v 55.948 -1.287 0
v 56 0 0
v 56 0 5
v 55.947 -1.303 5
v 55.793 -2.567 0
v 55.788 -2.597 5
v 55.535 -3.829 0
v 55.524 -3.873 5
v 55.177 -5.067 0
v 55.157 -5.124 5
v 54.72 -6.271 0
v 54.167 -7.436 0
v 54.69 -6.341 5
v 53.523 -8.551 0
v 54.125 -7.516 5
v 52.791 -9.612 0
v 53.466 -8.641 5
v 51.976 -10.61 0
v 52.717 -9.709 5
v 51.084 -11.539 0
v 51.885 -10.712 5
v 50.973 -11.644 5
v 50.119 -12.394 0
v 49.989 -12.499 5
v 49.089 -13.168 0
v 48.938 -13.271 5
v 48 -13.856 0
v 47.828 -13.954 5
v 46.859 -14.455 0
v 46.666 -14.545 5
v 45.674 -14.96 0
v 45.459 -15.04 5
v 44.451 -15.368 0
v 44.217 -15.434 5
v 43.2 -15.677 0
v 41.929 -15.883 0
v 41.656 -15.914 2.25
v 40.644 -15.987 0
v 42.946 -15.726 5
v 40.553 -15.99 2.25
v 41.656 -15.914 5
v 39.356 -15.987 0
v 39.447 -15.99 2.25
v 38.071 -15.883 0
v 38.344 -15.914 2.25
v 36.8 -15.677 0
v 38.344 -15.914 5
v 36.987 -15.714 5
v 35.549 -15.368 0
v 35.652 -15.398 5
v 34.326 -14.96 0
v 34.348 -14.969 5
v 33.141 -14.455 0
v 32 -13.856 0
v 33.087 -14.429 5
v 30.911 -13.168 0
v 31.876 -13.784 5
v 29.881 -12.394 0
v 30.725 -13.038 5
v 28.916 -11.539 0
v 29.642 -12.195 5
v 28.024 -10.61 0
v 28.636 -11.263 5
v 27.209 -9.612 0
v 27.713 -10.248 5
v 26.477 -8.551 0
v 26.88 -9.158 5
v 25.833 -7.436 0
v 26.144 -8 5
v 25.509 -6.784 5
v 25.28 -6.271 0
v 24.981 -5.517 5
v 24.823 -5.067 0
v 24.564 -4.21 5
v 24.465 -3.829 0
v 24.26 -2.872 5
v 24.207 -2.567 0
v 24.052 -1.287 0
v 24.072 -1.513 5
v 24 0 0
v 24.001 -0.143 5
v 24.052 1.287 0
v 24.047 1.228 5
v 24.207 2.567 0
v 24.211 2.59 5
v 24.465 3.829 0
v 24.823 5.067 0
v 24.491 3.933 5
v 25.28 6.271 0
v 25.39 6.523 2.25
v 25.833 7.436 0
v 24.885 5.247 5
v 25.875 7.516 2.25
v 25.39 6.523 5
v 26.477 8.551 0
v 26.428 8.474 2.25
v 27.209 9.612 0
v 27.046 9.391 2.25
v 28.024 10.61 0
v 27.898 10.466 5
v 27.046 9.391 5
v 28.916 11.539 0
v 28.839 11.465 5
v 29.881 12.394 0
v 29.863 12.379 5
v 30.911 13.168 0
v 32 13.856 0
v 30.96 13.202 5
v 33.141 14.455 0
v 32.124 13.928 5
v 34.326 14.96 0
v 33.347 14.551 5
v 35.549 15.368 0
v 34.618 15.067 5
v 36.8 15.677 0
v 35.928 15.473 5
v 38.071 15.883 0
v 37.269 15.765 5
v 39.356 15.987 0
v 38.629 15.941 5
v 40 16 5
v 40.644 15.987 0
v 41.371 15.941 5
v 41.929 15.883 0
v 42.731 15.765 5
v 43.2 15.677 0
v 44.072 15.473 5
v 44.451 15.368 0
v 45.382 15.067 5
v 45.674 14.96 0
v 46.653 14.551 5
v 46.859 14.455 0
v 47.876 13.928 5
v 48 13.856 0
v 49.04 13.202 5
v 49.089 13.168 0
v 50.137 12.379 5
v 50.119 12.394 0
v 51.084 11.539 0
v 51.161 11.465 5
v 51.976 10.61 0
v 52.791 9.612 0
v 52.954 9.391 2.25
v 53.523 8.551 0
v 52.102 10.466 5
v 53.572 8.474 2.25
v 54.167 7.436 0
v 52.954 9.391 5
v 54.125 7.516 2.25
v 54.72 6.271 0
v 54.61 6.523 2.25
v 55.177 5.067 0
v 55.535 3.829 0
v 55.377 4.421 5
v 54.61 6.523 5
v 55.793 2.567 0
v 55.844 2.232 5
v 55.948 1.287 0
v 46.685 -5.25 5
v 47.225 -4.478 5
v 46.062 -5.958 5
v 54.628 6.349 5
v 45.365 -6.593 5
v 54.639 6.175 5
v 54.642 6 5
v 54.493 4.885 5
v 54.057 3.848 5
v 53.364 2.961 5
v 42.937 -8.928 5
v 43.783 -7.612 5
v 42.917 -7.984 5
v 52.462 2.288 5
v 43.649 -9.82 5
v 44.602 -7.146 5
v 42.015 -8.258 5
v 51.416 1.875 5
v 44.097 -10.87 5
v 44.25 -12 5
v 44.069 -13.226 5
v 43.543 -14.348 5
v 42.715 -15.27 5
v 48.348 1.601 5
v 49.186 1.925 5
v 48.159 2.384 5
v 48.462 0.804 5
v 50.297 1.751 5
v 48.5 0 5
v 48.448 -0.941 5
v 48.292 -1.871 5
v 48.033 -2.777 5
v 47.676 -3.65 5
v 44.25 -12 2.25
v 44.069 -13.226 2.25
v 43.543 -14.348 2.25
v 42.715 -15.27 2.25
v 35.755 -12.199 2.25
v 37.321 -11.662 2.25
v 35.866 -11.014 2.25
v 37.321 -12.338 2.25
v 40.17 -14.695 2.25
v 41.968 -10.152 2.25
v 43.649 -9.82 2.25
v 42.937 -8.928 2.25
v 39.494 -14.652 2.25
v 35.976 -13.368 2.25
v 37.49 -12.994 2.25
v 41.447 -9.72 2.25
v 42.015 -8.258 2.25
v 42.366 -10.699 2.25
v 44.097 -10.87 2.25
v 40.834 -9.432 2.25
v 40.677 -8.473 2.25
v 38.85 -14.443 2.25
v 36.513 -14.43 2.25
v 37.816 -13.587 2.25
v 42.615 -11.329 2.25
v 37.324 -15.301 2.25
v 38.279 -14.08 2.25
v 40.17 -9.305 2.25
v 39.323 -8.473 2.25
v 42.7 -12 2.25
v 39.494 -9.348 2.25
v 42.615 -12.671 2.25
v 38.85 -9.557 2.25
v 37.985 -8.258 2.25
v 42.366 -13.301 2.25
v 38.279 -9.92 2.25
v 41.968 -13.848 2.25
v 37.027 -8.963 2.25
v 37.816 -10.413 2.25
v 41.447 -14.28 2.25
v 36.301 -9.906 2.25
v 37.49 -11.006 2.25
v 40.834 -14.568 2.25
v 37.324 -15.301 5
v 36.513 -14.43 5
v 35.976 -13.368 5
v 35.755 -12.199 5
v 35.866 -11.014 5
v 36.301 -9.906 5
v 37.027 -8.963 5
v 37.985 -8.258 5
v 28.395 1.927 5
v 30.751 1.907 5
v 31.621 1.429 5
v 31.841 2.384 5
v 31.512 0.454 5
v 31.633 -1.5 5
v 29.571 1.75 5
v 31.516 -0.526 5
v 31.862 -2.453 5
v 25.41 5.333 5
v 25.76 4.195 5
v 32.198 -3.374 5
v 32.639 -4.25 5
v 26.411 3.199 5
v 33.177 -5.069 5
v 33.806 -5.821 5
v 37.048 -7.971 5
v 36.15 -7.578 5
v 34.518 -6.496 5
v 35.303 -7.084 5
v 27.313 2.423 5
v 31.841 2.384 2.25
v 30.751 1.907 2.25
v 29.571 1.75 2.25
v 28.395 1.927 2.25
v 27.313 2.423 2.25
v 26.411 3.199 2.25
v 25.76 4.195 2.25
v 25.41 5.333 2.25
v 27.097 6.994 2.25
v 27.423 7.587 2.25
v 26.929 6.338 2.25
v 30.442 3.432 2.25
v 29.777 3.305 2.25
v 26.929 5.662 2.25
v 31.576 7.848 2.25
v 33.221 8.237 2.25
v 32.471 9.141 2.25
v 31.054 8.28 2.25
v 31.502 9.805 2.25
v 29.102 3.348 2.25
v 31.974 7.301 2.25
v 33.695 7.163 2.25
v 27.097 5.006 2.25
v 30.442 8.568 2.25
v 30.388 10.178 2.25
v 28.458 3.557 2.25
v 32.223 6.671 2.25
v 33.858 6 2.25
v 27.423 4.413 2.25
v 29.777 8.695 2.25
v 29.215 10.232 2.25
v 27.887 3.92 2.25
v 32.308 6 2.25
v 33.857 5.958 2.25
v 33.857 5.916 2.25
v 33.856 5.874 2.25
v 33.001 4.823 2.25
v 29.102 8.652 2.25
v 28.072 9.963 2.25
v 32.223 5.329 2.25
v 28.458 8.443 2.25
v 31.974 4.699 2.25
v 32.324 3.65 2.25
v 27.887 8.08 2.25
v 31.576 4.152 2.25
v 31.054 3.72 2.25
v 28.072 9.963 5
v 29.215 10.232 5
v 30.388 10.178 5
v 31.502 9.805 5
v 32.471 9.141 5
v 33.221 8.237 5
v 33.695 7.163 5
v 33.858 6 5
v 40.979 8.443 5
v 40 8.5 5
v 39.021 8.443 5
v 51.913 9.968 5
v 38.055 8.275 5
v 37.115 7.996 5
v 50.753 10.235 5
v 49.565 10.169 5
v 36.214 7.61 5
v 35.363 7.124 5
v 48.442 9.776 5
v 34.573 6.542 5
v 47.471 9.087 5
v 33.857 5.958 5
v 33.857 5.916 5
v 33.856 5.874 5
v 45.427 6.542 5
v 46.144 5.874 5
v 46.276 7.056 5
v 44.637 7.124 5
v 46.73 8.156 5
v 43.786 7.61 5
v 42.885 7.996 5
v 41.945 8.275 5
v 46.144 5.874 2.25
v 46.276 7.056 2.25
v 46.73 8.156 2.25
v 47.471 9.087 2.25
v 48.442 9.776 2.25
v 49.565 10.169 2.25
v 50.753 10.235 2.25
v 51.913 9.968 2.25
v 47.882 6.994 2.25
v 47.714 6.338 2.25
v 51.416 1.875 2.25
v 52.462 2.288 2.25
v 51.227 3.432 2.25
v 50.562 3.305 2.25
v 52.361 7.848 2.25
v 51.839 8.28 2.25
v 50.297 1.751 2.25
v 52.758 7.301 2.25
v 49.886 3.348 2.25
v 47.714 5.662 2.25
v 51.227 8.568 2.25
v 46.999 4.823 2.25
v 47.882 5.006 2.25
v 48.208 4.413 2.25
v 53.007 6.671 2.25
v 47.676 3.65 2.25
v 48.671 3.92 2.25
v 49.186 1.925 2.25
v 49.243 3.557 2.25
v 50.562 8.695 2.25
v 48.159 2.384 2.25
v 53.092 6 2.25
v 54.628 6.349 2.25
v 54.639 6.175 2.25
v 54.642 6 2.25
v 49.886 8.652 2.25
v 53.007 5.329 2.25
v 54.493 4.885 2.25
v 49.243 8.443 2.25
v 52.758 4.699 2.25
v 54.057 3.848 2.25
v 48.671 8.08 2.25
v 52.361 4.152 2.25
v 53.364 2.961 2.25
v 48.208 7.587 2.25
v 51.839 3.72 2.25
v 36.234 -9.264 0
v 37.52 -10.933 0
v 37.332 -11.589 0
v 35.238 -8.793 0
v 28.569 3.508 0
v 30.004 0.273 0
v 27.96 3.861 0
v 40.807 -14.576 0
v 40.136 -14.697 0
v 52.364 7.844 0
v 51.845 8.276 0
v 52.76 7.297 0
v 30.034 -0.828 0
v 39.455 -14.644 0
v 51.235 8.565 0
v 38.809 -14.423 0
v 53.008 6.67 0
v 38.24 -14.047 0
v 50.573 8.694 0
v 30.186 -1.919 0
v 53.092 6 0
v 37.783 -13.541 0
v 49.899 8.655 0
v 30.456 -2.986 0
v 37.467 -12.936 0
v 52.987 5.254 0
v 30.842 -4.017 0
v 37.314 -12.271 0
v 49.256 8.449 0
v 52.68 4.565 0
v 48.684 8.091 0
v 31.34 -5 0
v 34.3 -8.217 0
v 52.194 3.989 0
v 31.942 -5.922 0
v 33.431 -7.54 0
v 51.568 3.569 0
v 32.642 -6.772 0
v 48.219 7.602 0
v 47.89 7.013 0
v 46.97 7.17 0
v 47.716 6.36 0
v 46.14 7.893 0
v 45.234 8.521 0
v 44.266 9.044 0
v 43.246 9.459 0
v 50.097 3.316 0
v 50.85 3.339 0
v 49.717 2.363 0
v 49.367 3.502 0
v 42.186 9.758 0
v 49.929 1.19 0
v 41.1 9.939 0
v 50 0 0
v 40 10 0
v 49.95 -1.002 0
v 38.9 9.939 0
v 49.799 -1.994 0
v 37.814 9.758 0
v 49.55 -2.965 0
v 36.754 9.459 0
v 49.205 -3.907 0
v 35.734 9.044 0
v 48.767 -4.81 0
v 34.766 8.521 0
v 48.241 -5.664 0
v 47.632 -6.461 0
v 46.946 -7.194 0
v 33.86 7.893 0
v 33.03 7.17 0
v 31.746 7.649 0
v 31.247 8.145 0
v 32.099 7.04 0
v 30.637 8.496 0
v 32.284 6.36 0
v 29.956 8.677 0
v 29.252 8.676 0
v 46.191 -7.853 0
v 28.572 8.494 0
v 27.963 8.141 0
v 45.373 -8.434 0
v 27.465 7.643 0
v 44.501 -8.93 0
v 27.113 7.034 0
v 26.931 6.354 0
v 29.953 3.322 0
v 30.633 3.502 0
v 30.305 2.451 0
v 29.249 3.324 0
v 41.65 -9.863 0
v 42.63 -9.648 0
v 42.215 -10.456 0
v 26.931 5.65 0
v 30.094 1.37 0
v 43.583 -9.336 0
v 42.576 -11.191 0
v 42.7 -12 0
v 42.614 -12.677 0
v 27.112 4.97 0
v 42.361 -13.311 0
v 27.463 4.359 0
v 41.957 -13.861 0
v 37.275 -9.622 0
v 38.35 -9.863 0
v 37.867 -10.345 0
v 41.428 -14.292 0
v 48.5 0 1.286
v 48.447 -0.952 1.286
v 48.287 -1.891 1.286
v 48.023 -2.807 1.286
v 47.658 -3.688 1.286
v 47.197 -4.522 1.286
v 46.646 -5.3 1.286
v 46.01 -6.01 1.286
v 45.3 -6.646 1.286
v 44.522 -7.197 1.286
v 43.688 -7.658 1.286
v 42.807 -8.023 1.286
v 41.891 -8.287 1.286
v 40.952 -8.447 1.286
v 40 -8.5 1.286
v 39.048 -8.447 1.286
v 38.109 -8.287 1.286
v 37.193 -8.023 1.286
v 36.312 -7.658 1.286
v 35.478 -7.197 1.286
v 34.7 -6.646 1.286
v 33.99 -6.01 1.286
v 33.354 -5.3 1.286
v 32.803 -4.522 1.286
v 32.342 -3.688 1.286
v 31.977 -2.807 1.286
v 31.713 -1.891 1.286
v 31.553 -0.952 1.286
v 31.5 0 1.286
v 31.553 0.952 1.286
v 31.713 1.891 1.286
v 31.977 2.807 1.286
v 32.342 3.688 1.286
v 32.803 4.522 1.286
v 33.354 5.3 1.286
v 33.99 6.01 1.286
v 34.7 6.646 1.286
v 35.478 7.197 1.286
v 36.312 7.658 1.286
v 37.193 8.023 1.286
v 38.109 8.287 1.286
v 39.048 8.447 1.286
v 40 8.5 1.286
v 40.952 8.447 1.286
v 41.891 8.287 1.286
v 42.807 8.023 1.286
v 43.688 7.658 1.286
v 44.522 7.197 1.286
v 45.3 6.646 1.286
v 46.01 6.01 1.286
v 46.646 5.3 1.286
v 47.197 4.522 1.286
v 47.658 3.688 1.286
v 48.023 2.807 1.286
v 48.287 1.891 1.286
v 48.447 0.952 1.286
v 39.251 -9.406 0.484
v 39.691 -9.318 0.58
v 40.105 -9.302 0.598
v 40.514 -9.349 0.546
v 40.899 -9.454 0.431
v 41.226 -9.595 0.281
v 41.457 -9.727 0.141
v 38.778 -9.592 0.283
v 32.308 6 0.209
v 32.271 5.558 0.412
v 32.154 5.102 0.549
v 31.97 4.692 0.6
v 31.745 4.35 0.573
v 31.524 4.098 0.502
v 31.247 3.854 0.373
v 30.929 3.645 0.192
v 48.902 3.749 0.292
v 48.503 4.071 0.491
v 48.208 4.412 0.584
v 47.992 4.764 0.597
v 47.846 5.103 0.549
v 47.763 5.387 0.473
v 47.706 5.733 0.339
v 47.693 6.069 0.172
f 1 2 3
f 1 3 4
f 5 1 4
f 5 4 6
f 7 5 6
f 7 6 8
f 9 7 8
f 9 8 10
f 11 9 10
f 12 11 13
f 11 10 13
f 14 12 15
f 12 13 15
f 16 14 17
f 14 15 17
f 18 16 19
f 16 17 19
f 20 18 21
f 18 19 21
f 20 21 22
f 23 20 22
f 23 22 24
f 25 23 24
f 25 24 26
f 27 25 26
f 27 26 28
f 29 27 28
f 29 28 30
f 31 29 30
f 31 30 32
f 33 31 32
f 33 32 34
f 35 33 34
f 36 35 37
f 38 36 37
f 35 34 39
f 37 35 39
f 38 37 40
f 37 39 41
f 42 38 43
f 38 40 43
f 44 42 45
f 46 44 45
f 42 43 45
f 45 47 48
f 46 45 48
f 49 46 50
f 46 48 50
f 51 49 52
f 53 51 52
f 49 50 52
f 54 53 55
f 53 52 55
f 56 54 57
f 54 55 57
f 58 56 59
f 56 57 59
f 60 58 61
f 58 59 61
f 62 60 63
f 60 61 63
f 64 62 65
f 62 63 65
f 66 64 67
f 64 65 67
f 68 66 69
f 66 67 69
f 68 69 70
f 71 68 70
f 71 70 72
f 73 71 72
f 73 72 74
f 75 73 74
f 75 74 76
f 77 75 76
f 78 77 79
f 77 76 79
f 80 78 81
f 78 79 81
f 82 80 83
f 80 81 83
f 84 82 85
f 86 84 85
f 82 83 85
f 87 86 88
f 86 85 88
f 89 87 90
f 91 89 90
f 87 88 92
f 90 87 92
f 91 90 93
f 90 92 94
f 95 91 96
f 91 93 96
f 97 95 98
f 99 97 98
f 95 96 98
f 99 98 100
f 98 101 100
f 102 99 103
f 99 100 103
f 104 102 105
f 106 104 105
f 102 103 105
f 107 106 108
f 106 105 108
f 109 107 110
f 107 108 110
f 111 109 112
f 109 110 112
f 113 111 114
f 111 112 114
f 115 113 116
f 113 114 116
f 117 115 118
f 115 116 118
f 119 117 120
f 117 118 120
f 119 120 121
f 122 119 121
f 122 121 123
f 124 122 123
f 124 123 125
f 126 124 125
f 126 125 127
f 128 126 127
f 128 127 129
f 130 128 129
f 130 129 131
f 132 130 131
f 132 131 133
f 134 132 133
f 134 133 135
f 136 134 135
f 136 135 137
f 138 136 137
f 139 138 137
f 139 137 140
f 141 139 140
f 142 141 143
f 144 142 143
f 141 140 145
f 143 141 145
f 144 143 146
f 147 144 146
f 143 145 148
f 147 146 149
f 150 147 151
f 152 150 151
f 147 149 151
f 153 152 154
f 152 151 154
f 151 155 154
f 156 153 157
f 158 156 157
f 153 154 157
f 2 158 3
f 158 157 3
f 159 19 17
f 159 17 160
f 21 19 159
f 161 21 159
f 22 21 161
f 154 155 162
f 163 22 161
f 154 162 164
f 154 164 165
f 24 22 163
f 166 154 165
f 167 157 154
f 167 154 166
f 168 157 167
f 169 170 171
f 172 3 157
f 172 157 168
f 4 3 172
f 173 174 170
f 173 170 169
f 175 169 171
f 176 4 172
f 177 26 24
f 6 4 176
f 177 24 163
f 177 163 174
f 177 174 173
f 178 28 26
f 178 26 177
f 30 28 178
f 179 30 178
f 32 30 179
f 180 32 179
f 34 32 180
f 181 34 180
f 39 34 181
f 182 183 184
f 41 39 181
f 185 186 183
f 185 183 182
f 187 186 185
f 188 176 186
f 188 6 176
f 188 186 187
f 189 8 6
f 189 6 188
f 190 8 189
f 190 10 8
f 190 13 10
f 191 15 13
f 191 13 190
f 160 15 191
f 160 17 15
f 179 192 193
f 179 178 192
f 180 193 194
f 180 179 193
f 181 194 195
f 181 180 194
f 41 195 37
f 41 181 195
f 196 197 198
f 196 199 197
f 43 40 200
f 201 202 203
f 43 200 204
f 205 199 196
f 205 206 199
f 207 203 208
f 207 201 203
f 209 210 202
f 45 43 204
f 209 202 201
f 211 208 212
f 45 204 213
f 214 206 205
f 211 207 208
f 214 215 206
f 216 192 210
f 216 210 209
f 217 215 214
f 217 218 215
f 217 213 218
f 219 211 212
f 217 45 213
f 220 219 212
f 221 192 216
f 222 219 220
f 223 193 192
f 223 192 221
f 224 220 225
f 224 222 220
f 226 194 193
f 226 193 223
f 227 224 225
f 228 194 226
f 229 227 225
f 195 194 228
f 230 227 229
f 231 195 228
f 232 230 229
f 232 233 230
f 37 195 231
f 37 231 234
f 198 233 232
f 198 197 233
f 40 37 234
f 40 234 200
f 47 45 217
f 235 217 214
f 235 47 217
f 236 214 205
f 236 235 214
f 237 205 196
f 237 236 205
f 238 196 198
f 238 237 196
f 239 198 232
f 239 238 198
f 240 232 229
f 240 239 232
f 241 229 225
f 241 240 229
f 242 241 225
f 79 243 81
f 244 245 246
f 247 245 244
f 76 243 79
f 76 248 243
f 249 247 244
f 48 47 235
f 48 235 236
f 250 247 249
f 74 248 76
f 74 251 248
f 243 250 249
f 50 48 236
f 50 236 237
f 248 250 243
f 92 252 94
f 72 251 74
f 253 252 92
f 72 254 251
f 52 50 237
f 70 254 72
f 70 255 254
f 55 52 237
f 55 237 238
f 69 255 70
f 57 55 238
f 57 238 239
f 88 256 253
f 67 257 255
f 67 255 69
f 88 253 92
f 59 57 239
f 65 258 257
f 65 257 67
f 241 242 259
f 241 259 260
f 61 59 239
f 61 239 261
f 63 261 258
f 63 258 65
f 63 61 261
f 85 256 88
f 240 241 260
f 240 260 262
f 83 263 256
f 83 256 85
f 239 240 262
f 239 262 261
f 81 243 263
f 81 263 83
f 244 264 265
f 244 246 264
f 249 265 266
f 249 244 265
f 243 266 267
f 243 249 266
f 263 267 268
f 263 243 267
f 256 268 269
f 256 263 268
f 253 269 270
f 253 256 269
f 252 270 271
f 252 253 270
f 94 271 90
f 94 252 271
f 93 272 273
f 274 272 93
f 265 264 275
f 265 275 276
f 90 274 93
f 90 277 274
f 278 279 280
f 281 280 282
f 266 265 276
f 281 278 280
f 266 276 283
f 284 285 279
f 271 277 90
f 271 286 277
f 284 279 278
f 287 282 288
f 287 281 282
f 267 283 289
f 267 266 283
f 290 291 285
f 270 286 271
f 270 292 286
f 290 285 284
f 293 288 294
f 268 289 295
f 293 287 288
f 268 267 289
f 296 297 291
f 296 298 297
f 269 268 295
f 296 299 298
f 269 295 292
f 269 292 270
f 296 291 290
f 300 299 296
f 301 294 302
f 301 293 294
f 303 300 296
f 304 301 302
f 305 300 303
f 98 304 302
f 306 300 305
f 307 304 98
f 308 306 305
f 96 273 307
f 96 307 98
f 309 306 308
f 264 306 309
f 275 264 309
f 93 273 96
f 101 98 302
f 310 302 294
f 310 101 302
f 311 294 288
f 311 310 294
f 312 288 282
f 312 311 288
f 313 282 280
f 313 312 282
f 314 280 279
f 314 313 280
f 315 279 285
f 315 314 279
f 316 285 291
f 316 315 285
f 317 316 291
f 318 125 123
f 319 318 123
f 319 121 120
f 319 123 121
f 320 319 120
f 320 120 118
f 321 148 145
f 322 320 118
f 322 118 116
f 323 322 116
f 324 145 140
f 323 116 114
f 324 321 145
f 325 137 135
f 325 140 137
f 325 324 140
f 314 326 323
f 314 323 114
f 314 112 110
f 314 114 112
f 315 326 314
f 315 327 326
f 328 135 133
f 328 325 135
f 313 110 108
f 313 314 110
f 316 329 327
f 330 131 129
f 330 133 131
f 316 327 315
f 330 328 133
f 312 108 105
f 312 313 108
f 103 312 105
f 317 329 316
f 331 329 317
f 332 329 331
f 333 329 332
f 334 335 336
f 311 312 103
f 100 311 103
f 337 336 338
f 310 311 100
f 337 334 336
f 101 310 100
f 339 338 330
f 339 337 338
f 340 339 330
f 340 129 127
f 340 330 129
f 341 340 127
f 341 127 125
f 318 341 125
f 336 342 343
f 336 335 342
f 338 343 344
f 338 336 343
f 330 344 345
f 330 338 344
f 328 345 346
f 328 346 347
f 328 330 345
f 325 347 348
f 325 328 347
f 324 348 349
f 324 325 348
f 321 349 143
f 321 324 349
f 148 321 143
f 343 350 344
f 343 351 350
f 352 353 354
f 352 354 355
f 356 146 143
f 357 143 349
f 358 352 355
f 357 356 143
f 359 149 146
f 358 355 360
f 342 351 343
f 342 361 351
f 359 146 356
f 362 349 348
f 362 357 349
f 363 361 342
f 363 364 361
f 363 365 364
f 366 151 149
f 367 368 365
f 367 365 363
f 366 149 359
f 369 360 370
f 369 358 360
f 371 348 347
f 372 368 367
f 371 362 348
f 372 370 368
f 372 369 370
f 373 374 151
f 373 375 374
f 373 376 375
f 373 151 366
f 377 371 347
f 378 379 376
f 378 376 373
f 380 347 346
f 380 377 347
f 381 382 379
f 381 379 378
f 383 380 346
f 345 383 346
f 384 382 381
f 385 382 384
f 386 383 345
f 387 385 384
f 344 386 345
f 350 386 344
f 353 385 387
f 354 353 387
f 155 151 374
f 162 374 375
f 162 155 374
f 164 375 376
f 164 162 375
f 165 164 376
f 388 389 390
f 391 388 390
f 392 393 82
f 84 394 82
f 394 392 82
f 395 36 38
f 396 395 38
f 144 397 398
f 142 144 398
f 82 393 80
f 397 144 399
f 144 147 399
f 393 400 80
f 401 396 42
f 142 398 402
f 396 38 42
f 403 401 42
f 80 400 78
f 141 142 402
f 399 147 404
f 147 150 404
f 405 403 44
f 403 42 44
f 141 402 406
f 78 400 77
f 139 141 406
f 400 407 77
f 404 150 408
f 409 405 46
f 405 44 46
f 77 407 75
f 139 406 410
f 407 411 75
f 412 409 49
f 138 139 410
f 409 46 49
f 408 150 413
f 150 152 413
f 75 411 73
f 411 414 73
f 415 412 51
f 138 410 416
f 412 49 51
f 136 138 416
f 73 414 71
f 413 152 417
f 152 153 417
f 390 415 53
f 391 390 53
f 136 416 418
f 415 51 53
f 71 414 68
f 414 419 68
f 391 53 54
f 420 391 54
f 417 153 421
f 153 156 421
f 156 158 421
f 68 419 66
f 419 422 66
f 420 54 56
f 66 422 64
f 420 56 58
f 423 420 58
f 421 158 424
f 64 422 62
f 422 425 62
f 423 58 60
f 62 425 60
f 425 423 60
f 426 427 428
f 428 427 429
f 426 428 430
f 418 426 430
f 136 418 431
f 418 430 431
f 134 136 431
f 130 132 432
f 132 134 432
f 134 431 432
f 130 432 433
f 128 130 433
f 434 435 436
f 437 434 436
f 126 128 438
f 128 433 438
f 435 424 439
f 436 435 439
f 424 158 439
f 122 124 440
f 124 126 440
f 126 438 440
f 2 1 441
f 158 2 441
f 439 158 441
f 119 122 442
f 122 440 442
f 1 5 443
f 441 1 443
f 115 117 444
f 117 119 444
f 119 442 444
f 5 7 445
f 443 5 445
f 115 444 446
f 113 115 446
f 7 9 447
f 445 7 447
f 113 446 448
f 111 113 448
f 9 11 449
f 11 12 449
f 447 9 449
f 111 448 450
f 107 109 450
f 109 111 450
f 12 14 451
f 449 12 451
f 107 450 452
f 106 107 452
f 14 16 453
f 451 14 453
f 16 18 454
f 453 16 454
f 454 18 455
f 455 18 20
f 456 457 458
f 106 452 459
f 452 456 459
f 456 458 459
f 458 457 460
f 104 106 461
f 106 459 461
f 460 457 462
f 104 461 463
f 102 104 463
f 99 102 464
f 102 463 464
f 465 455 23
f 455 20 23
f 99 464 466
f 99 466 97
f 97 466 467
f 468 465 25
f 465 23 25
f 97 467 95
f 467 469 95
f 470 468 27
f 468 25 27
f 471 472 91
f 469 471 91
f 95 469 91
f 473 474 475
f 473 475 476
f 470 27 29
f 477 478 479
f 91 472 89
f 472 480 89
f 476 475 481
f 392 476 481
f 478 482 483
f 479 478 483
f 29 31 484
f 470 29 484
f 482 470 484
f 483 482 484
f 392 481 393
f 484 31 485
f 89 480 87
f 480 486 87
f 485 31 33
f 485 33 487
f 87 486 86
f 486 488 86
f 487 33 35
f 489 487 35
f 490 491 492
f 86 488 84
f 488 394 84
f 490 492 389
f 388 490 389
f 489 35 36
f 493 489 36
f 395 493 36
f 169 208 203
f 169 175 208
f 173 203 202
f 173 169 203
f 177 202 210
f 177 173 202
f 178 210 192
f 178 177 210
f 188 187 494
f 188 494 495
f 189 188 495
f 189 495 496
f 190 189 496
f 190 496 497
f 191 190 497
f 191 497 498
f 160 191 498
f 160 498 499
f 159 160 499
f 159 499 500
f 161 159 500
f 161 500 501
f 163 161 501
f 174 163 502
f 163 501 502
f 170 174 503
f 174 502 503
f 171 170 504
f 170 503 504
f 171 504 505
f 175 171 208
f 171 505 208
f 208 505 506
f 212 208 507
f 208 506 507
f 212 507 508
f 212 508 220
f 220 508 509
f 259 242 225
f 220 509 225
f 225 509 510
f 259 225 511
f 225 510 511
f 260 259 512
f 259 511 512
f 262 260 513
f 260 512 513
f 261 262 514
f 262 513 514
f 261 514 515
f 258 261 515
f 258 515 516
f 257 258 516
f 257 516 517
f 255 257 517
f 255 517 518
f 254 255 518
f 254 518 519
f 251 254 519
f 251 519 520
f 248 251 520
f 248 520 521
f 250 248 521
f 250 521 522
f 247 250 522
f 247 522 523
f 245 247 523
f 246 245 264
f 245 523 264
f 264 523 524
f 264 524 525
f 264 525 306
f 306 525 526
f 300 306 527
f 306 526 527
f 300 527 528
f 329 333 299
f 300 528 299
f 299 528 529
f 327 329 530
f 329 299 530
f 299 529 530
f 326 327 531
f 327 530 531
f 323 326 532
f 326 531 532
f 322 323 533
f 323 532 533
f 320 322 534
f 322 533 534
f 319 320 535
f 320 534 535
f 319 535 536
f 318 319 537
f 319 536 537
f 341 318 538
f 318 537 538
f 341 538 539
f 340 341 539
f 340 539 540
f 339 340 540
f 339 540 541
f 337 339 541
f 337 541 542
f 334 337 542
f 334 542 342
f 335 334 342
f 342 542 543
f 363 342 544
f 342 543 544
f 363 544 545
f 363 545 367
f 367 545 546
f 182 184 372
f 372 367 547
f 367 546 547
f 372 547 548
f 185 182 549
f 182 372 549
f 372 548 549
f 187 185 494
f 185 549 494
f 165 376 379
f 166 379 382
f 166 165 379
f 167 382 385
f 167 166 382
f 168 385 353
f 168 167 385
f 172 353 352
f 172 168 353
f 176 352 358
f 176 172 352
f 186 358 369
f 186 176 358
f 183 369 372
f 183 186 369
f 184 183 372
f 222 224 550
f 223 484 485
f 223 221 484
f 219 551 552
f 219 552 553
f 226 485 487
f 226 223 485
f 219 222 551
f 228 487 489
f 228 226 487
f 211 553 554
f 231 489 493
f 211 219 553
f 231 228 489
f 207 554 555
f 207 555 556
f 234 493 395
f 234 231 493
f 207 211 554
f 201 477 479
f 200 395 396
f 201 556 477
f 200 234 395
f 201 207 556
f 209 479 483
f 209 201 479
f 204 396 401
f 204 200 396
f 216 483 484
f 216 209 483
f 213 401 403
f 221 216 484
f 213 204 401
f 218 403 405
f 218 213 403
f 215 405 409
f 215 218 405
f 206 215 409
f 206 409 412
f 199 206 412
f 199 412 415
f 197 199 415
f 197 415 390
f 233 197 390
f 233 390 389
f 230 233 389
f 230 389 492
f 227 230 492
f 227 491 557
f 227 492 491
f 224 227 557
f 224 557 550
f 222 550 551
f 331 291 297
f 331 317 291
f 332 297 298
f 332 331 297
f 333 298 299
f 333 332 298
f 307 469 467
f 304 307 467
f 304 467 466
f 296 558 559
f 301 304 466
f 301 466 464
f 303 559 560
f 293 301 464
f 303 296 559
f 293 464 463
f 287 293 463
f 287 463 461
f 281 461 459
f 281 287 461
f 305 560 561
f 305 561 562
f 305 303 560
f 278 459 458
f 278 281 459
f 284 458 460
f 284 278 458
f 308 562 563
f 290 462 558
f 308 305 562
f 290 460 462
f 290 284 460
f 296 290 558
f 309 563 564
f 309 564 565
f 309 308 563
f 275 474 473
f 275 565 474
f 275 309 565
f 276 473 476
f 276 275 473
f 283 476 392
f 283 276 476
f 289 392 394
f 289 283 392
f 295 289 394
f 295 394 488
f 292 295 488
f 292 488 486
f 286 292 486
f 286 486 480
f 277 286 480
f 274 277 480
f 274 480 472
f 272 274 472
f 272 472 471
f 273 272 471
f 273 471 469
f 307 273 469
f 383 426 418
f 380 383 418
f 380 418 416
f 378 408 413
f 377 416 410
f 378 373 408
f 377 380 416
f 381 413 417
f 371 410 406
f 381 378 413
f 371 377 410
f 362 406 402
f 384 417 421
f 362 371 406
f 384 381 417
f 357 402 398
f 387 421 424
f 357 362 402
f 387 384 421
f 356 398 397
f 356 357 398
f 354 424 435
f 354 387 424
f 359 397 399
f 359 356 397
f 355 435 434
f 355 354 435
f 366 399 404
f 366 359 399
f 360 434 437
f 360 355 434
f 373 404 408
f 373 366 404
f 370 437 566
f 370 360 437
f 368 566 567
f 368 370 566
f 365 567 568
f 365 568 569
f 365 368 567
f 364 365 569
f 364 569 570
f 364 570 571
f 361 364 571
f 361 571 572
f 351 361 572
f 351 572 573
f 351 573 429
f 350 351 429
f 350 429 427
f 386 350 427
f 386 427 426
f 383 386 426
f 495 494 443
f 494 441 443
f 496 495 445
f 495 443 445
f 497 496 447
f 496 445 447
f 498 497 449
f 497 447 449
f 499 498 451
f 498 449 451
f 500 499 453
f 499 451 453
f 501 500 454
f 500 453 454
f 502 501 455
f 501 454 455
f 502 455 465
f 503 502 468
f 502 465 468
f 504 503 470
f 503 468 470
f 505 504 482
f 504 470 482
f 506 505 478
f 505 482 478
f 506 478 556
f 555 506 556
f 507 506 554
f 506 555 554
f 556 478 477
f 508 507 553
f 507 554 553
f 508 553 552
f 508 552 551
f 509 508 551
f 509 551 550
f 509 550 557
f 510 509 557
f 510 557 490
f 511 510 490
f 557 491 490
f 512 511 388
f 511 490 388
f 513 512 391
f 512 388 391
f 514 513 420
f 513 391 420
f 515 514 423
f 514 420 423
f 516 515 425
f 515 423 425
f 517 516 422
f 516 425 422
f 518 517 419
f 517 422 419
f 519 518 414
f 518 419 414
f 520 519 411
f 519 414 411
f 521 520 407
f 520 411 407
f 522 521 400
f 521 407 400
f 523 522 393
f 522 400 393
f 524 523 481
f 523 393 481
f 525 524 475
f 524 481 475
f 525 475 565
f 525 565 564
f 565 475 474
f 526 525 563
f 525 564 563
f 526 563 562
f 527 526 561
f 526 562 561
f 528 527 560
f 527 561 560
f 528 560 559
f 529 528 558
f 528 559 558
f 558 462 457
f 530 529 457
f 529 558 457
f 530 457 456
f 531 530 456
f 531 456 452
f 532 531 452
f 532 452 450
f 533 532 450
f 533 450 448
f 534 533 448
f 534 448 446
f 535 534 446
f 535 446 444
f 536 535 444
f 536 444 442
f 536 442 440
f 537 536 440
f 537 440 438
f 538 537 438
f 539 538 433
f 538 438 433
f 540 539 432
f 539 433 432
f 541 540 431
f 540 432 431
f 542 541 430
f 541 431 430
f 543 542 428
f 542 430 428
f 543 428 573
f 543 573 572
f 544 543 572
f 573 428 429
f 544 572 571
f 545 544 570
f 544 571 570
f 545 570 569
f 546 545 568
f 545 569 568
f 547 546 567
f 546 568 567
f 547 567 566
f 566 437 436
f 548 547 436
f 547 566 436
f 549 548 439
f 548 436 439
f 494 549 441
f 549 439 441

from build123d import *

# Parameters (mm, degrees)
SKETCH005_R         = 4.25
PAD005_DEPTH        = 2.75
CYLINDER_R          = 8.5
CYLINDER_DEPTH      = 11
SKETCH003_R         = 16
SKETCH003_R_2       = 2.7
PAD003_DEPTH        = 5
CUT_PLACEMENT_ANGLE = 180


with BuildPart() as pad009:
    # Sketch005 → Pad005 (new body)
    with BuildSketch(Plane(origin=(40, 0, 0), x_dir=(1, 0, 0), z_dir=(0, 0, 1))):
        with Locations((0, 12)):
            Circle(SKETCH005_R)
        with Locations((-10.392315, -5.999983)):
            Circle(SKETCH005_R)
        with Locations((10.392315, -5.999983)):
            Circle(SKETCH005_R)
    extrude(amount=PAD005_DEPTH)


with BuildPart() as cylindre:
    # Cylinder → Cylinder (new body)
    with BuildSketch(Plane(origin=(40, 0, 0), x_dir=(1, 0, 0), z_dir=(0, 0, 1))):
        Circle(CYLINDER_R)
    extrude(amount=CYLINDER_DEPTH)


with BuildPart() as fusion:
    # Cone → Cone (revolve)
    with BuildSketch(Plane(origin=(40, 0, 2), x_dir=(1, 0, 0), z_dir=(0, -1, 0))):
        Polygon((0, 0), (6.5, 0), (10, 3), (0, 3), align=None)
    revolve(axis=Axis((40, 0, 2), (0, 0, 1)))

    # Fusion: union Cylindre
    add(cylindre.part)


with BuildPart() as wheel:
    # Sketch003 → Pad003 (new body)
    with BuildSketch(Plane(origin=(40, 0, 0), x_dir=(1, 0, 0), z_dir=(0, 0, 1))):
        Circle(SKETCH003_R)
        with Locations((0, 12)):
            Circle(SKETCH003_R_2, mode=Mode.SUBTRACT)
        with Locations((-10.392315, -5.999983)):
            Circle(SKETCH003_R_2, mode=Mode.SUBTRACT)
        with Locations((10.392315, -5.999983)):
            Circle(SKETCH003_R_2, mode=Mode.SUBTRACT)
    extrude(amount=PAD003_DEPTH)

    # Cut002: cut Fusion
    add(fusion.part, mode=Mode.SUBTRACT)

    # Cut: cut Pad009
    add(pad009.part, mode=Mode.SUBTRACT)


with BuildPart() as wheel_1:
    # Cut placement: moved
    add(wheel.part.moved(Location((0, 0, 5))).rotate(Axis((0, 0, 5), (1, 0, 0)), CUT_PLACEMENT_ANGLE))


solid = wheel_1.part
